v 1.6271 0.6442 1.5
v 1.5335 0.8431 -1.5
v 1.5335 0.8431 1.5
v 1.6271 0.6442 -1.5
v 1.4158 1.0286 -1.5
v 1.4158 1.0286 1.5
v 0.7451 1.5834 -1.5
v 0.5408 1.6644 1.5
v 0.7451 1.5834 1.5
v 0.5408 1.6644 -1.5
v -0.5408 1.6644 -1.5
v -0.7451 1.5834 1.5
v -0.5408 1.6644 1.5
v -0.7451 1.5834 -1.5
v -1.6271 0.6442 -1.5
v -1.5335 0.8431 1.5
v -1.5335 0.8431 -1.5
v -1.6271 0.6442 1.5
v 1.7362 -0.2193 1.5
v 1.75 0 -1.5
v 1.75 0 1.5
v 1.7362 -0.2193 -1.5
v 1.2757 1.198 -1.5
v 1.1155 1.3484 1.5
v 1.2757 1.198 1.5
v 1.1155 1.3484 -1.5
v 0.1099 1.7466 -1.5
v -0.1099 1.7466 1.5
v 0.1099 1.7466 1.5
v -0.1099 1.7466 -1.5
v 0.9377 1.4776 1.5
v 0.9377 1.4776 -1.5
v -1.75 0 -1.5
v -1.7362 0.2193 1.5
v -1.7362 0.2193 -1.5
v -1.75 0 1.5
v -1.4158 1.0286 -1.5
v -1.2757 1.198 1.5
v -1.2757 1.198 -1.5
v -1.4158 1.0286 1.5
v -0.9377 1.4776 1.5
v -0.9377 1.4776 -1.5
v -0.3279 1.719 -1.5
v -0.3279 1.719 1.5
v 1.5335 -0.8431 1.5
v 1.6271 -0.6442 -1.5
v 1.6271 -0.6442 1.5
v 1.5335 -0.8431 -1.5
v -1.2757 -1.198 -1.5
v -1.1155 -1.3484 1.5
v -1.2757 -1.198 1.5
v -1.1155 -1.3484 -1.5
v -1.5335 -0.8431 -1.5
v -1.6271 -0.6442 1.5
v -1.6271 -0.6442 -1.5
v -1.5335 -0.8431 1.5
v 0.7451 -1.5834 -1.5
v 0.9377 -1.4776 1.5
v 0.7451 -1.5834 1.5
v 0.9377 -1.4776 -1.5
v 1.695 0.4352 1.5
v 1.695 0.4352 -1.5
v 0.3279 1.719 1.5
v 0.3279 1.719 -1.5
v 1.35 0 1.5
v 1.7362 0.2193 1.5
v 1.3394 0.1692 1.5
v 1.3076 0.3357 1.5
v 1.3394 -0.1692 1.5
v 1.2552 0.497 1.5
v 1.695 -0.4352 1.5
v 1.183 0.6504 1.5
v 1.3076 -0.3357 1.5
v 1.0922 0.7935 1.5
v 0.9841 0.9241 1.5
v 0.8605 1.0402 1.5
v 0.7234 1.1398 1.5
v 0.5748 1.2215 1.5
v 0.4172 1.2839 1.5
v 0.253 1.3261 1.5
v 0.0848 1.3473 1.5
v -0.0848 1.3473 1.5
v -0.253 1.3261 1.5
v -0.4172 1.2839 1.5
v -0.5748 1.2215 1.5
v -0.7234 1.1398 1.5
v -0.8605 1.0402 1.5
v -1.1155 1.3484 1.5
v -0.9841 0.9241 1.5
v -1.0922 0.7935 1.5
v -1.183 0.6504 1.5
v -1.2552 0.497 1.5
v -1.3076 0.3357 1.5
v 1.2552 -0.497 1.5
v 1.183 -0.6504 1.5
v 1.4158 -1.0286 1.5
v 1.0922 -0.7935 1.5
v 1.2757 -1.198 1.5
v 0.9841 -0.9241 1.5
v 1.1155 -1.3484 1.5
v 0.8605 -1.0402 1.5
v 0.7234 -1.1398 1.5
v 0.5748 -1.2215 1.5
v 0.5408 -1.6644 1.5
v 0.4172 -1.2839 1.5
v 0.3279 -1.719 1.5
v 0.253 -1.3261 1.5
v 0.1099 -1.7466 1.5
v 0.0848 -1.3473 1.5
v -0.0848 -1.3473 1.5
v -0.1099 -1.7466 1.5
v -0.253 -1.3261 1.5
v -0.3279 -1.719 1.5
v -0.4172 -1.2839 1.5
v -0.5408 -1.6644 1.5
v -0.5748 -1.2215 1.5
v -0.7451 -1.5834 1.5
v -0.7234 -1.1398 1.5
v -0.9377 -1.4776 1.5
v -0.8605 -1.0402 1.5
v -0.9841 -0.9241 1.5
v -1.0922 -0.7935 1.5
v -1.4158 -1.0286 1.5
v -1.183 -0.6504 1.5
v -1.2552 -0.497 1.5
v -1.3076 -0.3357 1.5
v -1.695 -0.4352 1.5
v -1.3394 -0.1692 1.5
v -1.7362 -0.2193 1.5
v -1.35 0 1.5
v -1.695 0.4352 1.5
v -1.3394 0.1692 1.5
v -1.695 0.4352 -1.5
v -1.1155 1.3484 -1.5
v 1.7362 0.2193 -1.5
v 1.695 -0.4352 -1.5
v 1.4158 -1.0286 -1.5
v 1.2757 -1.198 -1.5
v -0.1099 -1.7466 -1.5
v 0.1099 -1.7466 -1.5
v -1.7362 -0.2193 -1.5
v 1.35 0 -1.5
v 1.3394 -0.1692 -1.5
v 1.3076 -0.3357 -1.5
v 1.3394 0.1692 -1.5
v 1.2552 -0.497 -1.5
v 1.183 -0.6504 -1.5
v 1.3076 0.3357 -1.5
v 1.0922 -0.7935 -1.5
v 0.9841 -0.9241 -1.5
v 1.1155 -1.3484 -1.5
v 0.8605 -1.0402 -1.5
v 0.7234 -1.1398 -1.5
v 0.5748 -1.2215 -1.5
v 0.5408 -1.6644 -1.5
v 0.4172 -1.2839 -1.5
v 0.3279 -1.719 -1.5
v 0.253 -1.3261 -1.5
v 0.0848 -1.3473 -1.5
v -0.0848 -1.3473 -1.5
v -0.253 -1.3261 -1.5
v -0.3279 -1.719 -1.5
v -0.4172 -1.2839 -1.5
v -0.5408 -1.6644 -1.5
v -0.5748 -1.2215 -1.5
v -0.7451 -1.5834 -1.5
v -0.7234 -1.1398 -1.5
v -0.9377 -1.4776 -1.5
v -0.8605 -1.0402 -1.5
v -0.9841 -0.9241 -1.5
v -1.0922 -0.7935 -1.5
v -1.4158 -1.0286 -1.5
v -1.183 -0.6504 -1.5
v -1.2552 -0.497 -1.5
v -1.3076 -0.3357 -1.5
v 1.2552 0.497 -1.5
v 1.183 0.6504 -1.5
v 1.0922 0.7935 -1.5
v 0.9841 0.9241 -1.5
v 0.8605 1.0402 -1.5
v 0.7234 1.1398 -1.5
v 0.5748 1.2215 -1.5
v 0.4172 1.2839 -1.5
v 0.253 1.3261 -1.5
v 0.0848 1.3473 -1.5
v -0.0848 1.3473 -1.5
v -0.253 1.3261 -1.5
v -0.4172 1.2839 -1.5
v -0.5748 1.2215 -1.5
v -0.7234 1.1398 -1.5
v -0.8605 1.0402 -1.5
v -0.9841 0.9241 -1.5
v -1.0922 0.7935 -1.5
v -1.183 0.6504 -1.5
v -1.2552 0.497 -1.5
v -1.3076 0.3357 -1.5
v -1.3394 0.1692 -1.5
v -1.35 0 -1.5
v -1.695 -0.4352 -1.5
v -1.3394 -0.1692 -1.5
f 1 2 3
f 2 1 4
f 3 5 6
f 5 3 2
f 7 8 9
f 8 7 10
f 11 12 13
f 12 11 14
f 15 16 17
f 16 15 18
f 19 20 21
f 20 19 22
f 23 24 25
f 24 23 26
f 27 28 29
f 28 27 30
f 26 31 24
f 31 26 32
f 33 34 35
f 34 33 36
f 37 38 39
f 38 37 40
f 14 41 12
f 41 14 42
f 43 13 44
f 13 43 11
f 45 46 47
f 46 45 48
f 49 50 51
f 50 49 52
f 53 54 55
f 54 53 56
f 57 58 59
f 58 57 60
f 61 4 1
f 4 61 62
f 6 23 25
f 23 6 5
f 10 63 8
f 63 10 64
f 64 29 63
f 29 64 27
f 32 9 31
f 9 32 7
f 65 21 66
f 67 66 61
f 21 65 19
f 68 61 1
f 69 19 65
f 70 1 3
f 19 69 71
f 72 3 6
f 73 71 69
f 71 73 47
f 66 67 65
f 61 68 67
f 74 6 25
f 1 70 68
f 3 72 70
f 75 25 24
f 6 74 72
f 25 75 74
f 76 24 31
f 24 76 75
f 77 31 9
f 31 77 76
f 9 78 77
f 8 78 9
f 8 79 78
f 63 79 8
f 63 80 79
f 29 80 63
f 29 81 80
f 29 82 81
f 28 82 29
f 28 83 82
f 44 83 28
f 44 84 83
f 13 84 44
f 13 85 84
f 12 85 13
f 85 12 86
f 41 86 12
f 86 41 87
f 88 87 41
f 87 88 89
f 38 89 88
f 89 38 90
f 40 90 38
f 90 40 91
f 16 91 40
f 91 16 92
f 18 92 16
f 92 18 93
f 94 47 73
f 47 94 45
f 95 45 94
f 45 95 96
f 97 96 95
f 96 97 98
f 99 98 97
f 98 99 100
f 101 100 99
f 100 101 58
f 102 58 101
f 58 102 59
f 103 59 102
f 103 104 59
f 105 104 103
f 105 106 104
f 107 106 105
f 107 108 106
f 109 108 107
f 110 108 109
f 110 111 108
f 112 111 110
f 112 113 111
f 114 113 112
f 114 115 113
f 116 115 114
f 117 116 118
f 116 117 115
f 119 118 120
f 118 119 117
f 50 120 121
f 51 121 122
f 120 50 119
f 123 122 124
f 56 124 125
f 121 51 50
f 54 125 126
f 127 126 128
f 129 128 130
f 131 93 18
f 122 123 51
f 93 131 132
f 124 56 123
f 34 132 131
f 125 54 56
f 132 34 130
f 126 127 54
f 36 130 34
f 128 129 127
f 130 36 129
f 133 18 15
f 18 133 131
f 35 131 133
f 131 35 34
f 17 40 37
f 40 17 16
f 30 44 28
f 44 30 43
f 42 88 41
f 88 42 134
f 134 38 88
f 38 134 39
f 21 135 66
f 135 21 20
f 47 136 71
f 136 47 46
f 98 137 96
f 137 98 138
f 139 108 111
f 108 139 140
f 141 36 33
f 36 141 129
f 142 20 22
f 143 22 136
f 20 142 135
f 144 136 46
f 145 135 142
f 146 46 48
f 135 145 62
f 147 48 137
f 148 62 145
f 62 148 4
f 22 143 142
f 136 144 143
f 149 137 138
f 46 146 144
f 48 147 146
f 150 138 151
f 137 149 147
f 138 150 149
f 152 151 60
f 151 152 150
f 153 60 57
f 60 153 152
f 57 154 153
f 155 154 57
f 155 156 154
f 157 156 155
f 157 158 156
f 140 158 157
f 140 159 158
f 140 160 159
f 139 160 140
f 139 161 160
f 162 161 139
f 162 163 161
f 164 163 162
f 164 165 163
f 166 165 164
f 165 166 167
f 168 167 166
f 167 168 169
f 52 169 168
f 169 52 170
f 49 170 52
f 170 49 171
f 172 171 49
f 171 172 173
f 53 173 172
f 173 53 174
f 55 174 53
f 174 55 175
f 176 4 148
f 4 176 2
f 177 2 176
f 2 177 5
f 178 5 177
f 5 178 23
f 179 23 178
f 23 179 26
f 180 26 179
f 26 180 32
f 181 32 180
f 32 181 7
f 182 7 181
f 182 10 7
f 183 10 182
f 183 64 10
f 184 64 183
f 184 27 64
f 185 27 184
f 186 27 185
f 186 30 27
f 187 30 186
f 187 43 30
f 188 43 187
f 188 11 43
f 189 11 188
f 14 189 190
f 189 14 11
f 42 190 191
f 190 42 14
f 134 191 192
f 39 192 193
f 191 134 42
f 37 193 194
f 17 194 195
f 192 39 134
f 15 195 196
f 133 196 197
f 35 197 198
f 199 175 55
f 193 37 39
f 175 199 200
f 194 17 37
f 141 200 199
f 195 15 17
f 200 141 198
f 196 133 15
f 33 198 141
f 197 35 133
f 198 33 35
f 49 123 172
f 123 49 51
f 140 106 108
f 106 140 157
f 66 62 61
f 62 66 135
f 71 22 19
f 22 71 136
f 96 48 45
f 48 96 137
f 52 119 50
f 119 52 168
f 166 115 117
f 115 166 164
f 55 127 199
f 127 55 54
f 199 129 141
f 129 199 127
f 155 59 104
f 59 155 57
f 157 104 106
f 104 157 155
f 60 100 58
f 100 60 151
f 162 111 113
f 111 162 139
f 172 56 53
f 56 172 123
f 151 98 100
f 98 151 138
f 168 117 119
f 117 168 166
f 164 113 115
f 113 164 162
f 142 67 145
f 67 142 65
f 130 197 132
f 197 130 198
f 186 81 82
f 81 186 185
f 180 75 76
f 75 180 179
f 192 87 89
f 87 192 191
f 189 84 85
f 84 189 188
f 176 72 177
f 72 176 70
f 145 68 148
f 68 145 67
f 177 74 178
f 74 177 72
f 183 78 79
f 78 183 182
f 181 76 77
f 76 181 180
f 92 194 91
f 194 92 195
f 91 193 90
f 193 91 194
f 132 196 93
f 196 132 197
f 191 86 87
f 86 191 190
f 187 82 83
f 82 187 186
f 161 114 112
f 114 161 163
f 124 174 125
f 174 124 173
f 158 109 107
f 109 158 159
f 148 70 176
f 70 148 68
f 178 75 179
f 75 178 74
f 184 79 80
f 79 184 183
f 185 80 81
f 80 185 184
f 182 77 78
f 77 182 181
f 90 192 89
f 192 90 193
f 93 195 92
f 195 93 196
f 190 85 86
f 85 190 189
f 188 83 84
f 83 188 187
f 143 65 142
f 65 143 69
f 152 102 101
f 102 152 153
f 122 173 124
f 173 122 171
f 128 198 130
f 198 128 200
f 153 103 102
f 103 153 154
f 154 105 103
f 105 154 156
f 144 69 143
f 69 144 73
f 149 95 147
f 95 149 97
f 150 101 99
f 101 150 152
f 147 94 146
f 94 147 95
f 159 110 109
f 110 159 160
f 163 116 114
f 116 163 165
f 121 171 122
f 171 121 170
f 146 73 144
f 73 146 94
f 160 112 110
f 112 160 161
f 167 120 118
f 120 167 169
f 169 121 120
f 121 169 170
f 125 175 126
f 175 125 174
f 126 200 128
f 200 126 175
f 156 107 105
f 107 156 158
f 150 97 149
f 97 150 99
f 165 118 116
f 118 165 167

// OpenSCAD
$fn = 50;


difference() {
	union() {
		translate(v = [0, 0, -1.5000000000]) {
			cylinder(h = 3, r = 1.7500000000);
		}
	}
	union() {
		translate(v = [0, 0, -100.0000000000]) {
			cylinder(h = 200, r = 1.3500000000);
		}
	}
}
